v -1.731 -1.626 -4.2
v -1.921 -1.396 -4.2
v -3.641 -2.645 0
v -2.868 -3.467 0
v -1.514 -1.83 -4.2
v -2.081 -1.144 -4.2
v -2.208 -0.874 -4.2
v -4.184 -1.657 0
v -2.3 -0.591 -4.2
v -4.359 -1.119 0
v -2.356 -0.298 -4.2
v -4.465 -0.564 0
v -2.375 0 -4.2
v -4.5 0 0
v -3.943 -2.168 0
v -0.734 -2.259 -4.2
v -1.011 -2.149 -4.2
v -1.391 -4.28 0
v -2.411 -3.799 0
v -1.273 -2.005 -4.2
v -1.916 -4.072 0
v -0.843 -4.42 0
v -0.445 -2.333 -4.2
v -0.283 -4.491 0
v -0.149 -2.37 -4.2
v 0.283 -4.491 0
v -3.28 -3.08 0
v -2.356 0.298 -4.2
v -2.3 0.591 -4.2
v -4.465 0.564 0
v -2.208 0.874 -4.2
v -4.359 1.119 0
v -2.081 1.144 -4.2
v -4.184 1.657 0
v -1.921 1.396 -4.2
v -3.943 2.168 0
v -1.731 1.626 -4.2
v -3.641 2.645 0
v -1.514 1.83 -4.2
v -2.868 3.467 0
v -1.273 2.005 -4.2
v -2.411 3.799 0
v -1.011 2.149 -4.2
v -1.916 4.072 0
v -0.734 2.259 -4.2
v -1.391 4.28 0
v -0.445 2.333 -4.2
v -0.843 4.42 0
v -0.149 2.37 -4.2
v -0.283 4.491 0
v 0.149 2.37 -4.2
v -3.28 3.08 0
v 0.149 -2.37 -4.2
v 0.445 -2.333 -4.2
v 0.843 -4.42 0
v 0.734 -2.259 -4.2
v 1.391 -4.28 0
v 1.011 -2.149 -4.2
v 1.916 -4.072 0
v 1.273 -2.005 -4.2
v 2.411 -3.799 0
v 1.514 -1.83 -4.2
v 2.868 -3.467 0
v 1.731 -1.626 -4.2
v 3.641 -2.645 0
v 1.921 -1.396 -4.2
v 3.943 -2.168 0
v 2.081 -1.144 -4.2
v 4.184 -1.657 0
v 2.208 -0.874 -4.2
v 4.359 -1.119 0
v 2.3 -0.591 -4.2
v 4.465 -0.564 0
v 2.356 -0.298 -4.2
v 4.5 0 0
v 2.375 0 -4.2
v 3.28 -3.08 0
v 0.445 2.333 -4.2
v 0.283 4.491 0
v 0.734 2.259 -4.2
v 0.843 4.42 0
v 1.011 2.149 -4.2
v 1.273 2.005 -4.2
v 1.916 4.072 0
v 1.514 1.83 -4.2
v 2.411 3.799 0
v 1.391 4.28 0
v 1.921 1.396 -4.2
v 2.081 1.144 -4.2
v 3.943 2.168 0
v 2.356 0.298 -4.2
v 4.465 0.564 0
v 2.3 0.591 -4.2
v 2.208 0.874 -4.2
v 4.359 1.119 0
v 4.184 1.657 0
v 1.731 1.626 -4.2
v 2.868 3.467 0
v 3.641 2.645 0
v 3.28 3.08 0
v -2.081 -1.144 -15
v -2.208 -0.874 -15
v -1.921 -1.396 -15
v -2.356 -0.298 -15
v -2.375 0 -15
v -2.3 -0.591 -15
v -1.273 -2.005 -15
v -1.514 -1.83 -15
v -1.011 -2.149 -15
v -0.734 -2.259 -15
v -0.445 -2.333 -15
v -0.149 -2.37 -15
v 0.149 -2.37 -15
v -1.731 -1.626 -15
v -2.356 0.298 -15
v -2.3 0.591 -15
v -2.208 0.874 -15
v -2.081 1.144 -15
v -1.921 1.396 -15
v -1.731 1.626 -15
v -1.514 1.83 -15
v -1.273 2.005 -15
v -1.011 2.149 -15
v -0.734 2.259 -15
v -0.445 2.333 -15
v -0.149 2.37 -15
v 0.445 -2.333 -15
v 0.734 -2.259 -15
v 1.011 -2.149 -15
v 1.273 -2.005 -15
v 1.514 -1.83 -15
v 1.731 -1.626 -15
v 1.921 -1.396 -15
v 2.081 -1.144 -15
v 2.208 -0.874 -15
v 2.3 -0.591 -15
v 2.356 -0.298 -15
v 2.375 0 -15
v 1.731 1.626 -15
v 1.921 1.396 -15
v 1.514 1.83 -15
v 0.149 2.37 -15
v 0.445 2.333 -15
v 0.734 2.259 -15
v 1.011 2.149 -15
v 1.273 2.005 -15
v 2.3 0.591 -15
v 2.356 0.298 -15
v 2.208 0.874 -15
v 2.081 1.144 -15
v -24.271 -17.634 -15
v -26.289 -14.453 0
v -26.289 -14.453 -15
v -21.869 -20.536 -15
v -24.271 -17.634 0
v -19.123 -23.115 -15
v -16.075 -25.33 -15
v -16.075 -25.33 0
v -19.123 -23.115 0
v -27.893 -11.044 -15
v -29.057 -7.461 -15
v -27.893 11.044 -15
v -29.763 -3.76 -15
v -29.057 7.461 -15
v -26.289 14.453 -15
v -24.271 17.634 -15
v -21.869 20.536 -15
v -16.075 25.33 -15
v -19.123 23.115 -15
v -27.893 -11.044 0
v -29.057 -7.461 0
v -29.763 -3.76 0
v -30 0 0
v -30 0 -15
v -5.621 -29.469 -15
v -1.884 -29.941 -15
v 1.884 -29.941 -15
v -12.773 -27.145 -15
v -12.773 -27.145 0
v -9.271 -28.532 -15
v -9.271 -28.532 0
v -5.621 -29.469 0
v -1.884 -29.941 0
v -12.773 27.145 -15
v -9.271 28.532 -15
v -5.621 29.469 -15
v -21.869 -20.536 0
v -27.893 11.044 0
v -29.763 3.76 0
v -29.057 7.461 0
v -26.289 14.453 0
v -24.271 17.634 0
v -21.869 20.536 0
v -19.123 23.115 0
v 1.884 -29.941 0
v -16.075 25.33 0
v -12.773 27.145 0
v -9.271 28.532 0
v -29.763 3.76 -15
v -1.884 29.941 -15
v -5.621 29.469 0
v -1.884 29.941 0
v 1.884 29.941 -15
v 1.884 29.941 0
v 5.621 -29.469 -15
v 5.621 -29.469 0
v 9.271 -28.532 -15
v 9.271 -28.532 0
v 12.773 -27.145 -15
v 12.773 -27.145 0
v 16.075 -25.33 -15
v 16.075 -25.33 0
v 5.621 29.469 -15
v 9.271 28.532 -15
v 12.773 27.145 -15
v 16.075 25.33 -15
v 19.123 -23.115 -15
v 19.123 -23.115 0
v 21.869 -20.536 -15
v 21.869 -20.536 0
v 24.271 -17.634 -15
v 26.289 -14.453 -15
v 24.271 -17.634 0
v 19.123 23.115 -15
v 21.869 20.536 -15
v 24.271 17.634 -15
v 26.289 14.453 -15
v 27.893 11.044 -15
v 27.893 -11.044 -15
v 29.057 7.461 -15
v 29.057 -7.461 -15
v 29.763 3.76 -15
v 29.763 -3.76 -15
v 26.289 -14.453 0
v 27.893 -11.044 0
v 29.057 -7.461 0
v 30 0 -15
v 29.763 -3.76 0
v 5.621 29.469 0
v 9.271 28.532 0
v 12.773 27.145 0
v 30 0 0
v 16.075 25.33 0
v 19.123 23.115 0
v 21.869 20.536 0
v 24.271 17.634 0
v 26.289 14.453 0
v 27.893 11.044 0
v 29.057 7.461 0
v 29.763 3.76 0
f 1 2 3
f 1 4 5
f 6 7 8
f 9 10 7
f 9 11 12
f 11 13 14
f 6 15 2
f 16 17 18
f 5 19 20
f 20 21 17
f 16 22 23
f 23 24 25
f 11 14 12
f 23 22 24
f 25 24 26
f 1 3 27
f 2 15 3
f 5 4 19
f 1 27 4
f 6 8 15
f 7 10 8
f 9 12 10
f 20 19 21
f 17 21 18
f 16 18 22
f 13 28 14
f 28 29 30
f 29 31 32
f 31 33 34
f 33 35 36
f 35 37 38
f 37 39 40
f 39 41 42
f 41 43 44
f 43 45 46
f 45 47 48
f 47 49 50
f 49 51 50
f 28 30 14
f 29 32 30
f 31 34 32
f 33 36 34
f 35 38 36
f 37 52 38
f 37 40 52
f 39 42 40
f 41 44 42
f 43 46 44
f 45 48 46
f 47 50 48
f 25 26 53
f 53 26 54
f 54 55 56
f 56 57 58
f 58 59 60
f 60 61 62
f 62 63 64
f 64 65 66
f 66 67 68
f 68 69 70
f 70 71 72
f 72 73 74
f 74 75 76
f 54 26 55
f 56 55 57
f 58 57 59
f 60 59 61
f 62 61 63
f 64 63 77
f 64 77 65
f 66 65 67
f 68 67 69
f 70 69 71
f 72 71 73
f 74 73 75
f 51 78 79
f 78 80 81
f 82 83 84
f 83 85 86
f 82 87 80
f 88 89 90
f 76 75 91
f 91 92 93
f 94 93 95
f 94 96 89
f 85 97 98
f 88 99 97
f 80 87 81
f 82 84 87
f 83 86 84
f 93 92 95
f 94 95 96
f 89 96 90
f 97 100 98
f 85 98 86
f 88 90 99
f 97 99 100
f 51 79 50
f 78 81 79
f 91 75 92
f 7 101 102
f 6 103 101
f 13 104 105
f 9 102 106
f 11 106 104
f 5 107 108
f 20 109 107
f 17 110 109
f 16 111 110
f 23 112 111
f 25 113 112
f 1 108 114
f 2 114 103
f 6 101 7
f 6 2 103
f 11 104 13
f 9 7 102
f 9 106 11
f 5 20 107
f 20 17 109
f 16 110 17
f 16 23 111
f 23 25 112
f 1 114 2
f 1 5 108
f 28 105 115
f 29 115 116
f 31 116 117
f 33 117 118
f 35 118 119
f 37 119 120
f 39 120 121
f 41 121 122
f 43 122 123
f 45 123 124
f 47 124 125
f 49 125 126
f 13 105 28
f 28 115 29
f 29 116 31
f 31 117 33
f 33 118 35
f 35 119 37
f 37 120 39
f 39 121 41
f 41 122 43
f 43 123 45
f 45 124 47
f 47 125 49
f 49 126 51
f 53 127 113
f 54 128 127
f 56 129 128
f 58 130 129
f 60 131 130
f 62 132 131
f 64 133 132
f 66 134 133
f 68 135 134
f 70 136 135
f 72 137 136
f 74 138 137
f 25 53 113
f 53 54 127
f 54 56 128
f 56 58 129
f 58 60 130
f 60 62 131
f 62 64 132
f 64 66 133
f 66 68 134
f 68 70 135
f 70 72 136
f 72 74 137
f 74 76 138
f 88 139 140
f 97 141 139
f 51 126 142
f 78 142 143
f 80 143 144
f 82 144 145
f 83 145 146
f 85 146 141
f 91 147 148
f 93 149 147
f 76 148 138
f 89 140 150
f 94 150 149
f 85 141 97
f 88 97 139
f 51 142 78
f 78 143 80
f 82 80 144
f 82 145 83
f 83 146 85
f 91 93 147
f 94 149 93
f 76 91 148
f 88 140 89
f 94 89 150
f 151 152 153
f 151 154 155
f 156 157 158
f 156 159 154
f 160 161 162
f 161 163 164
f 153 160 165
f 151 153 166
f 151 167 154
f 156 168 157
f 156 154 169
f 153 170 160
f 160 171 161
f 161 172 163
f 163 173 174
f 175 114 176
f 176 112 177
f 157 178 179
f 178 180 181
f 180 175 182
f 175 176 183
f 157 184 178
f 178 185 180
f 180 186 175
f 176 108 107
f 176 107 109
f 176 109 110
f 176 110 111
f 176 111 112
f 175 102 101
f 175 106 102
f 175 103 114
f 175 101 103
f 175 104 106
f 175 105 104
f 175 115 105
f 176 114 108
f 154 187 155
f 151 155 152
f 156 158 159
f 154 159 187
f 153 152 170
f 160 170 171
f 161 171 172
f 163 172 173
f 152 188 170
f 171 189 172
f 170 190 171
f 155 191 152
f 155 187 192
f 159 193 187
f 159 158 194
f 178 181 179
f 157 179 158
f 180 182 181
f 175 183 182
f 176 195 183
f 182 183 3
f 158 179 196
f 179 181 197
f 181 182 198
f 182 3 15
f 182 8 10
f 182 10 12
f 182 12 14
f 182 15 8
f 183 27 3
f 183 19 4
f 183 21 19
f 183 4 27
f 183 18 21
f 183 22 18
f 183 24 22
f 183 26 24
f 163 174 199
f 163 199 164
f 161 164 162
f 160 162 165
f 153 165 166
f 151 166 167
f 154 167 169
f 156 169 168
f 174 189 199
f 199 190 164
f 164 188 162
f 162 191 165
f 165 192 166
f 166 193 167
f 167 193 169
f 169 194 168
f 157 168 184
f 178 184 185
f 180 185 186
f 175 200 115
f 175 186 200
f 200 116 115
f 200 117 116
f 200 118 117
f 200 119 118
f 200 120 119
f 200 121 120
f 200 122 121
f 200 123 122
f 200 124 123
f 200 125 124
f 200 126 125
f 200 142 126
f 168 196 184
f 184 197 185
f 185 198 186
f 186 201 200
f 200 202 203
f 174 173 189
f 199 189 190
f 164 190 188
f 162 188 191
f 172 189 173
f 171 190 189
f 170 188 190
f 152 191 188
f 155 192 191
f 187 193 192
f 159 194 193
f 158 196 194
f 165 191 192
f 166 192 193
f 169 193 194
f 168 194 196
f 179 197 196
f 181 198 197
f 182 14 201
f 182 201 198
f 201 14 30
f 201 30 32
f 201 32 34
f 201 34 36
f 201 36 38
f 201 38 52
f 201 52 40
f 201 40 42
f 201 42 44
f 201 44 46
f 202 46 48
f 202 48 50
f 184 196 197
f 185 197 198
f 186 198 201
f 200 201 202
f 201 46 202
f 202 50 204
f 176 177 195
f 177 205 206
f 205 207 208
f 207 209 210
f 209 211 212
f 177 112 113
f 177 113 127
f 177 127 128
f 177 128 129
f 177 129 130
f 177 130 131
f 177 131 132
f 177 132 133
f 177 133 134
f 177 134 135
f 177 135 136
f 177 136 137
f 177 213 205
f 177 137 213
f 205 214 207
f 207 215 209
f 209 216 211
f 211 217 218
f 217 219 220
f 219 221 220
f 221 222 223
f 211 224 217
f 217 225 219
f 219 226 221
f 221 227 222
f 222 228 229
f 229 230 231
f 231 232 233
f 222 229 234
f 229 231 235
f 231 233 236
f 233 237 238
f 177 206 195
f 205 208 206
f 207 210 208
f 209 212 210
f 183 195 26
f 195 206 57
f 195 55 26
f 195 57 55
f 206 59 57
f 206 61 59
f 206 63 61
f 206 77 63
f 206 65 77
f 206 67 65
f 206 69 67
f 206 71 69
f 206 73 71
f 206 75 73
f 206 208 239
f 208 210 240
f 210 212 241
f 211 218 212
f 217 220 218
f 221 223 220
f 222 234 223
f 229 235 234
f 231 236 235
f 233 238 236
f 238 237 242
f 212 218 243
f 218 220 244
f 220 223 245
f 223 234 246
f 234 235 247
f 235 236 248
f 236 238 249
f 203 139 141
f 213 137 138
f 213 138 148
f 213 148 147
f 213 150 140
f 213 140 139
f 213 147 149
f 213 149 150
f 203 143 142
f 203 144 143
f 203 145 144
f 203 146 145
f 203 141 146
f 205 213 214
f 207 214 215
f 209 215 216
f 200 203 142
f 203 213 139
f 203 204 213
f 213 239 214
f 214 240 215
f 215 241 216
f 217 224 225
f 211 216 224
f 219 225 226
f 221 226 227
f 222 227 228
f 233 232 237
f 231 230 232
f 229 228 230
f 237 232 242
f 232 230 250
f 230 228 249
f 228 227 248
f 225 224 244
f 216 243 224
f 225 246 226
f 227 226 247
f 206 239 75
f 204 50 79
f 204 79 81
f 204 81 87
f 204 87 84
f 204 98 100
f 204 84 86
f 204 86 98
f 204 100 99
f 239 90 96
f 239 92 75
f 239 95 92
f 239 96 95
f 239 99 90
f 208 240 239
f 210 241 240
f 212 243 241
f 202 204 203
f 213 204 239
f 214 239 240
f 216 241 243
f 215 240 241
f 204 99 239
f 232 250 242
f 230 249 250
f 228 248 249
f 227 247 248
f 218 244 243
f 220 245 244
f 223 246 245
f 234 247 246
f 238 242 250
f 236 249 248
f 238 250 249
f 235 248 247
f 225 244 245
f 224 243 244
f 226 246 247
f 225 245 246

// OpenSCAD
$fn = 50;


difference() {
	union() {
		translate(v = [0, 0, -15.0000000000]) {
			cylinder(h = 15, r = 30.0000000000);
		}
	}
	union() {
		translate(v = [0, 0, 0]) {
			rotate(a = [0, 0, 0]) {
				difference() {
					union() {
						translate(v = [0, 0, -18.0000000000]) {
							cylinder(h = 18, r = 2.2500000000);
						}
						translate(v = [0, 0, -4.2000000000]) {
							cylinder(h = 4.2000000000, r1 = 2.3750000000, r2 = 4.5000000000);
						}
						translate(v = [0, 0, -18.0000000000]) {
							cylinder(h = 18, r = 2.3750000000);
						}
						translate(v = [0, 0, -18.0000000000]) {
							cylinder(h = 18, r = 2.2500000000);
						}
					}
					union();
				}
			}
		}
	}
}
